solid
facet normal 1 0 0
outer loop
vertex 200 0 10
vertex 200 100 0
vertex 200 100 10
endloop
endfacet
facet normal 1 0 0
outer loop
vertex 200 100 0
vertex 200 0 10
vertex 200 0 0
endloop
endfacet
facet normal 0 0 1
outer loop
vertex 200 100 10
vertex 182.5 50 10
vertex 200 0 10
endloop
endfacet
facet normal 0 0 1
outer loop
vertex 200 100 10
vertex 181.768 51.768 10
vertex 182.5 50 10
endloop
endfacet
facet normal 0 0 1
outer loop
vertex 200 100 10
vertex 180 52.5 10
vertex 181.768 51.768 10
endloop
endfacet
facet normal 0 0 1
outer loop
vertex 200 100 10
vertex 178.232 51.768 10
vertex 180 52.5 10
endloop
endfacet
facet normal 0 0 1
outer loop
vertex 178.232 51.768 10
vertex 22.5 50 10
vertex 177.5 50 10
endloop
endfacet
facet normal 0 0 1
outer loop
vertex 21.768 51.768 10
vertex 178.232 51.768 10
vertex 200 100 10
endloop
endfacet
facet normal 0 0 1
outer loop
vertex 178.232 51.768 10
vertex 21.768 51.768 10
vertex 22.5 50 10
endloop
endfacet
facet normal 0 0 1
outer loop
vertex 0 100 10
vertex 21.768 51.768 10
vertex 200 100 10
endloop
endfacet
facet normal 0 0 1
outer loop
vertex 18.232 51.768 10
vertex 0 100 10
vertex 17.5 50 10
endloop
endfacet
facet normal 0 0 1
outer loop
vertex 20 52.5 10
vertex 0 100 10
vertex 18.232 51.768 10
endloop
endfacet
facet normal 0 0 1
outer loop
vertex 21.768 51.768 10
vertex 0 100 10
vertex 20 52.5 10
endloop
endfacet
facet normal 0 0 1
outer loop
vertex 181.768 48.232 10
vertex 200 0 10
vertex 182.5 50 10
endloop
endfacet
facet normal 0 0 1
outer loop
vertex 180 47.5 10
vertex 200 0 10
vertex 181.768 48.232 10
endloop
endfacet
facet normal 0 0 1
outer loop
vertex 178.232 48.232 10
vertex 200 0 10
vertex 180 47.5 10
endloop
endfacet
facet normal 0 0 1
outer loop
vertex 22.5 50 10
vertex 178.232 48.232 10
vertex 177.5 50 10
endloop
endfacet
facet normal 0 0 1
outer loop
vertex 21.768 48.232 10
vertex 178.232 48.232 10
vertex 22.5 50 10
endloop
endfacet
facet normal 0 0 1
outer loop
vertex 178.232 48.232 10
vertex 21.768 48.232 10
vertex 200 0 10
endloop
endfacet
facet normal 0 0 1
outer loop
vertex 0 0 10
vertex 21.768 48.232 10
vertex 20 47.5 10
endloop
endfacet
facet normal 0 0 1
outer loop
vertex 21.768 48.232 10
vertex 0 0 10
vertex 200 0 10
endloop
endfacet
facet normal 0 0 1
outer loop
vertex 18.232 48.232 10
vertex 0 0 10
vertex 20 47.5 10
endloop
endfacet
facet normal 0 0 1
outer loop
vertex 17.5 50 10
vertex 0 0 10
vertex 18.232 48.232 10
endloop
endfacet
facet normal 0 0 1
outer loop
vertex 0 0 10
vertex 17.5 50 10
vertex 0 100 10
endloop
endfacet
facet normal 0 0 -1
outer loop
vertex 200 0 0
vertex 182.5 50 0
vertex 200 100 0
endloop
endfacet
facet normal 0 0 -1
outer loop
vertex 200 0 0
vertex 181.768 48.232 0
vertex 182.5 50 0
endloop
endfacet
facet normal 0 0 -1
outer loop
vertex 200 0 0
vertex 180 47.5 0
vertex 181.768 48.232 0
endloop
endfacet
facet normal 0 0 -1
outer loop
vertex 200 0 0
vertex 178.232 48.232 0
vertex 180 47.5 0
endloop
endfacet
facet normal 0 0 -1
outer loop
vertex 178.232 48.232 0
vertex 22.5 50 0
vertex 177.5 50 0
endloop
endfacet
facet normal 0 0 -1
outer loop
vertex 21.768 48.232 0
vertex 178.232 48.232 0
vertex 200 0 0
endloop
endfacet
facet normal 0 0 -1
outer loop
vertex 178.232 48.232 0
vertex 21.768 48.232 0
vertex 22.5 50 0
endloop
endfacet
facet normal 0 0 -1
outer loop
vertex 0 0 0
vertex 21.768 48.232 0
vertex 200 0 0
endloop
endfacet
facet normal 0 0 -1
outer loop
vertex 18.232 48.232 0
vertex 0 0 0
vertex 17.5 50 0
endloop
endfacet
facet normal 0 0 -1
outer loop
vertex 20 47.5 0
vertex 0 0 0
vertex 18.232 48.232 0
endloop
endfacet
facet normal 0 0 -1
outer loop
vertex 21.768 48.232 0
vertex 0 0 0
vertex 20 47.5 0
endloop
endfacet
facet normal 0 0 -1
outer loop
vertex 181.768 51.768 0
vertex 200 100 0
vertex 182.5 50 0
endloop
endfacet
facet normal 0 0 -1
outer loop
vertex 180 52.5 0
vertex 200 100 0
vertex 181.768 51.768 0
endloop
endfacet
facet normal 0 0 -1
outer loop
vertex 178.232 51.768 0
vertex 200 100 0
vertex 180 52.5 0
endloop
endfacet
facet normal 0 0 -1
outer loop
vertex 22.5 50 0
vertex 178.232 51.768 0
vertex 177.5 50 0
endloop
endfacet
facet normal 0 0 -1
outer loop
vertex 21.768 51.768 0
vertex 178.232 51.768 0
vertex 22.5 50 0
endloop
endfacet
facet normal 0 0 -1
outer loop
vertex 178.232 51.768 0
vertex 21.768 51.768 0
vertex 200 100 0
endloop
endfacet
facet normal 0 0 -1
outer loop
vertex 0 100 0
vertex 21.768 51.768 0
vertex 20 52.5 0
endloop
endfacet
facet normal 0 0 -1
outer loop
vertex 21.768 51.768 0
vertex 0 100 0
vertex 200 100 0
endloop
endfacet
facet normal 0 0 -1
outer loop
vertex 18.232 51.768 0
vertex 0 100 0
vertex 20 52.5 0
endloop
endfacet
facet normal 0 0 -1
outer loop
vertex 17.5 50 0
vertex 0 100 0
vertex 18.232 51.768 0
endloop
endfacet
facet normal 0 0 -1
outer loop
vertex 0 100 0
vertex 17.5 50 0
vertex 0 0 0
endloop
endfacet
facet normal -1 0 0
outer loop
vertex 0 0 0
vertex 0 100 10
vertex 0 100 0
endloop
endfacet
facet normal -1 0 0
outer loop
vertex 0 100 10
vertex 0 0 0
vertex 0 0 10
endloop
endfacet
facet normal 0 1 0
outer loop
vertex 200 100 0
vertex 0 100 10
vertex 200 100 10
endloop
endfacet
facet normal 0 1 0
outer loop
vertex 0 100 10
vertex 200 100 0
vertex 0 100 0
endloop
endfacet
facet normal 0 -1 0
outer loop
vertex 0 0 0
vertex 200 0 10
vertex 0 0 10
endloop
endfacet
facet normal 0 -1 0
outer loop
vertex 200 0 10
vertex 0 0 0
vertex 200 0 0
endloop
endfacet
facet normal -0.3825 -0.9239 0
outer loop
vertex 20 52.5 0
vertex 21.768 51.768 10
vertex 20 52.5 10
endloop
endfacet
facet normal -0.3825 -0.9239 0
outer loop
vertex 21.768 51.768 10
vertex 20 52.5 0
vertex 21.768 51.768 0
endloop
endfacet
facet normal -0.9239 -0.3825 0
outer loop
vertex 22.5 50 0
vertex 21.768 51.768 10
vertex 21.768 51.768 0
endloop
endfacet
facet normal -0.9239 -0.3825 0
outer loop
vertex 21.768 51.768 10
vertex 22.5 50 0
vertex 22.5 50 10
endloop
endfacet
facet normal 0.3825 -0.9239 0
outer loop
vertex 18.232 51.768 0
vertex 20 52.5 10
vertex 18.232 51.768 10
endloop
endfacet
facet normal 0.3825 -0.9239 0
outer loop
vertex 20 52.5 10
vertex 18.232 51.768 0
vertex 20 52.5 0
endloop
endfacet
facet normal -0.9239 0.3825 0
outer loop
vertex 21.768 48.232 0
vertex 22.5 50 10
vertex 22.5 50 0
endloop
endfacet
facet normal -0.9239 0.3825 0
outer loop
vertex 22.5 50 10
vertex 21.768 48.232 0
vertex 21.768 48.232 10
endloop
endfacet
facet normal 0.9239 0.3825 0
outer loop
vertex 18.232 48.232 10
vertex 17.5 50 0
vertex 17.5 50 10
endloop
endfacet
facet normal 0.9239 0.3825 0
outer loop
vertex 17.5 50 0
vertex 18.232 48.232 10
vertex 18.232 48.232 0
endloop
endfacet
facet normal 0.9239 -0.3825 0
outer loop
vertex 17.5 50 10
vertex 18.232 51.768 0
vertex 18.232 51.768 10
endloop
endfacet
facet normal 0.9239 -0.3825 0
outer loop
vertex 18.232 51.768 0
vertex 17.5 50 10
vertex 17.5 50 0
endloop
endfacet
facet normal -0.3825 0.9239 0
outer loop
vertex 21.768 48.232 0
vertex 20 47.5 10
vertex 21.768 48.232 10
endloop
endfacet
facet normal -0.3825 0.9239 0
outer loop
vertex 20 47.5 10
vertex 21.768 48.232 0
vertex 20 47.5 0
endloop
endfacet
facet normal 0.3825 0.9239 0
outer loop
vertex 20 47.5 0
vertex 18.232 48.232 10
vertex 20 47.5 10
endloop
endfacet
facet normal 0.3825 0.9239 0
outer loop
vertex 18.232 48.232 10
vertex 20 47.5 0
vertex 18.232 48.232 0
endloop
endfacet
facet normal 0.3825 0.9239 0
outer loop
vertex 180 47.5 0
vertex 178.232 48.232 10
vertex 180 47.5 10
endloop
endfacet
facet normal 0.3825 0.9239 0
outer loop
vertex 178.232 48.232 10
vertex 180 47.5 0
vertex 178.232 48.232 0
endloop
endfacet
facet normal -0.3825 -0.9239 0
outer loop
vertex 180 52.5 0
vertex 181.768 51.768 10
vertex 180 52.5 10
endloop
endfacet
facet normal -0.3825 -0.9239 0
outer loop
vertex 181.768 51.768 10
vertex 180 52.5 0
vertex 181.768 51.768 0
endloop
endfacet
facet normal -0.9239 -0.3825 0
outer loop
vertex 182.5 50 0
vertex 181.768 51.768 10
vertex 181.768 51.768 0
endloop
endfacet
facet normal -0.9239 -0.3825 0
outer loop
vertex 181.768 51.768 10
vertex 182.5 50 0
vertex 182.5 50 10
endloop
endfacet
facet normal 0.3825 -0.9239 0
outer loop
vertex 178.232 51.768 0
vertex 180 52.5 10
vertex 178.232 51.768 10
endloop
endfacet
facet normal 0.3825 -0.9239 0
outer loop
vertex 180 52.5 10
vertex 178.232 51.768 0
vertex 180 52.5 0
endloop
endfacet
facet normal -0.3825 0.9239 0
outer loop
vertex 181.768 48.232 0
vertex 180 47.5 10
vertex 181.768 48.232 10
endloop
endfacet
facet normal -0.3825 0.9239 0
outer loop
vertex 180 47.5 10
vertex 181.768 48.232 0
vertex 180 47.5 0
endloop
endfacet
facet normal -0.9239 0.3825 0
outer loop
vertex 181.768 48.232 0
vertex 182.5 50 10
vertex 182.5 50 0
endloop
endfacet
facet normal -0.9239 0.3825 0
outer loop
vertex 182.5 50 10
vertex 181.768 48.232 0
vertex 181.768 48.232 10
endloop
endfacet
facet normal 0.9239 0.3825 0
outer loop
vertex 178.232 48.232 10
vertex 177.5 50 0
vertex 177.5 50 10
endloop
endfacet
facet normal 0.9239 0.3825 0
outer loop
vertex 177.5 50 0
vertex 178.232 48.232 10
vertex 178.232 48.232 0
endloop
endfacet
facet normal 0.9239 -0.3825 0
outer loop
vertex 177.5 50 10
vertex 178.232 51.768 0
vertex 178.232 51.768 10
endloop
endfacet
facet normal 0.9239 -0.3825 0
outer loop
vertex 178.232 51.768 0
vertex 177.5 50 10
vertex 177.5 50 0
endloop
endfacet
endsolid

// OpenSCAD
// Simple shelf with drywall mounting holes
width = 200;       // shelf width in mm
depth = 100;       // shelf depth in mm
thickness = 10;    // shelf thickness in mm
hole_diameter = 5; // screw hole diameter
hole_spacing = 160; // distance between holes
hole_offset = (width - hole_spacing) / 2;

difference() {
  cube([width, depth, thickness], center = false);
  translate([hole_offset, depth / 2, 0])
    cylinder(h = thickness, d = hole_diameter);
  translate([hole_offset + hole_spacing, depth / 2, 0])
    cylinder(h = thickness, d = hole_diameter);
}
